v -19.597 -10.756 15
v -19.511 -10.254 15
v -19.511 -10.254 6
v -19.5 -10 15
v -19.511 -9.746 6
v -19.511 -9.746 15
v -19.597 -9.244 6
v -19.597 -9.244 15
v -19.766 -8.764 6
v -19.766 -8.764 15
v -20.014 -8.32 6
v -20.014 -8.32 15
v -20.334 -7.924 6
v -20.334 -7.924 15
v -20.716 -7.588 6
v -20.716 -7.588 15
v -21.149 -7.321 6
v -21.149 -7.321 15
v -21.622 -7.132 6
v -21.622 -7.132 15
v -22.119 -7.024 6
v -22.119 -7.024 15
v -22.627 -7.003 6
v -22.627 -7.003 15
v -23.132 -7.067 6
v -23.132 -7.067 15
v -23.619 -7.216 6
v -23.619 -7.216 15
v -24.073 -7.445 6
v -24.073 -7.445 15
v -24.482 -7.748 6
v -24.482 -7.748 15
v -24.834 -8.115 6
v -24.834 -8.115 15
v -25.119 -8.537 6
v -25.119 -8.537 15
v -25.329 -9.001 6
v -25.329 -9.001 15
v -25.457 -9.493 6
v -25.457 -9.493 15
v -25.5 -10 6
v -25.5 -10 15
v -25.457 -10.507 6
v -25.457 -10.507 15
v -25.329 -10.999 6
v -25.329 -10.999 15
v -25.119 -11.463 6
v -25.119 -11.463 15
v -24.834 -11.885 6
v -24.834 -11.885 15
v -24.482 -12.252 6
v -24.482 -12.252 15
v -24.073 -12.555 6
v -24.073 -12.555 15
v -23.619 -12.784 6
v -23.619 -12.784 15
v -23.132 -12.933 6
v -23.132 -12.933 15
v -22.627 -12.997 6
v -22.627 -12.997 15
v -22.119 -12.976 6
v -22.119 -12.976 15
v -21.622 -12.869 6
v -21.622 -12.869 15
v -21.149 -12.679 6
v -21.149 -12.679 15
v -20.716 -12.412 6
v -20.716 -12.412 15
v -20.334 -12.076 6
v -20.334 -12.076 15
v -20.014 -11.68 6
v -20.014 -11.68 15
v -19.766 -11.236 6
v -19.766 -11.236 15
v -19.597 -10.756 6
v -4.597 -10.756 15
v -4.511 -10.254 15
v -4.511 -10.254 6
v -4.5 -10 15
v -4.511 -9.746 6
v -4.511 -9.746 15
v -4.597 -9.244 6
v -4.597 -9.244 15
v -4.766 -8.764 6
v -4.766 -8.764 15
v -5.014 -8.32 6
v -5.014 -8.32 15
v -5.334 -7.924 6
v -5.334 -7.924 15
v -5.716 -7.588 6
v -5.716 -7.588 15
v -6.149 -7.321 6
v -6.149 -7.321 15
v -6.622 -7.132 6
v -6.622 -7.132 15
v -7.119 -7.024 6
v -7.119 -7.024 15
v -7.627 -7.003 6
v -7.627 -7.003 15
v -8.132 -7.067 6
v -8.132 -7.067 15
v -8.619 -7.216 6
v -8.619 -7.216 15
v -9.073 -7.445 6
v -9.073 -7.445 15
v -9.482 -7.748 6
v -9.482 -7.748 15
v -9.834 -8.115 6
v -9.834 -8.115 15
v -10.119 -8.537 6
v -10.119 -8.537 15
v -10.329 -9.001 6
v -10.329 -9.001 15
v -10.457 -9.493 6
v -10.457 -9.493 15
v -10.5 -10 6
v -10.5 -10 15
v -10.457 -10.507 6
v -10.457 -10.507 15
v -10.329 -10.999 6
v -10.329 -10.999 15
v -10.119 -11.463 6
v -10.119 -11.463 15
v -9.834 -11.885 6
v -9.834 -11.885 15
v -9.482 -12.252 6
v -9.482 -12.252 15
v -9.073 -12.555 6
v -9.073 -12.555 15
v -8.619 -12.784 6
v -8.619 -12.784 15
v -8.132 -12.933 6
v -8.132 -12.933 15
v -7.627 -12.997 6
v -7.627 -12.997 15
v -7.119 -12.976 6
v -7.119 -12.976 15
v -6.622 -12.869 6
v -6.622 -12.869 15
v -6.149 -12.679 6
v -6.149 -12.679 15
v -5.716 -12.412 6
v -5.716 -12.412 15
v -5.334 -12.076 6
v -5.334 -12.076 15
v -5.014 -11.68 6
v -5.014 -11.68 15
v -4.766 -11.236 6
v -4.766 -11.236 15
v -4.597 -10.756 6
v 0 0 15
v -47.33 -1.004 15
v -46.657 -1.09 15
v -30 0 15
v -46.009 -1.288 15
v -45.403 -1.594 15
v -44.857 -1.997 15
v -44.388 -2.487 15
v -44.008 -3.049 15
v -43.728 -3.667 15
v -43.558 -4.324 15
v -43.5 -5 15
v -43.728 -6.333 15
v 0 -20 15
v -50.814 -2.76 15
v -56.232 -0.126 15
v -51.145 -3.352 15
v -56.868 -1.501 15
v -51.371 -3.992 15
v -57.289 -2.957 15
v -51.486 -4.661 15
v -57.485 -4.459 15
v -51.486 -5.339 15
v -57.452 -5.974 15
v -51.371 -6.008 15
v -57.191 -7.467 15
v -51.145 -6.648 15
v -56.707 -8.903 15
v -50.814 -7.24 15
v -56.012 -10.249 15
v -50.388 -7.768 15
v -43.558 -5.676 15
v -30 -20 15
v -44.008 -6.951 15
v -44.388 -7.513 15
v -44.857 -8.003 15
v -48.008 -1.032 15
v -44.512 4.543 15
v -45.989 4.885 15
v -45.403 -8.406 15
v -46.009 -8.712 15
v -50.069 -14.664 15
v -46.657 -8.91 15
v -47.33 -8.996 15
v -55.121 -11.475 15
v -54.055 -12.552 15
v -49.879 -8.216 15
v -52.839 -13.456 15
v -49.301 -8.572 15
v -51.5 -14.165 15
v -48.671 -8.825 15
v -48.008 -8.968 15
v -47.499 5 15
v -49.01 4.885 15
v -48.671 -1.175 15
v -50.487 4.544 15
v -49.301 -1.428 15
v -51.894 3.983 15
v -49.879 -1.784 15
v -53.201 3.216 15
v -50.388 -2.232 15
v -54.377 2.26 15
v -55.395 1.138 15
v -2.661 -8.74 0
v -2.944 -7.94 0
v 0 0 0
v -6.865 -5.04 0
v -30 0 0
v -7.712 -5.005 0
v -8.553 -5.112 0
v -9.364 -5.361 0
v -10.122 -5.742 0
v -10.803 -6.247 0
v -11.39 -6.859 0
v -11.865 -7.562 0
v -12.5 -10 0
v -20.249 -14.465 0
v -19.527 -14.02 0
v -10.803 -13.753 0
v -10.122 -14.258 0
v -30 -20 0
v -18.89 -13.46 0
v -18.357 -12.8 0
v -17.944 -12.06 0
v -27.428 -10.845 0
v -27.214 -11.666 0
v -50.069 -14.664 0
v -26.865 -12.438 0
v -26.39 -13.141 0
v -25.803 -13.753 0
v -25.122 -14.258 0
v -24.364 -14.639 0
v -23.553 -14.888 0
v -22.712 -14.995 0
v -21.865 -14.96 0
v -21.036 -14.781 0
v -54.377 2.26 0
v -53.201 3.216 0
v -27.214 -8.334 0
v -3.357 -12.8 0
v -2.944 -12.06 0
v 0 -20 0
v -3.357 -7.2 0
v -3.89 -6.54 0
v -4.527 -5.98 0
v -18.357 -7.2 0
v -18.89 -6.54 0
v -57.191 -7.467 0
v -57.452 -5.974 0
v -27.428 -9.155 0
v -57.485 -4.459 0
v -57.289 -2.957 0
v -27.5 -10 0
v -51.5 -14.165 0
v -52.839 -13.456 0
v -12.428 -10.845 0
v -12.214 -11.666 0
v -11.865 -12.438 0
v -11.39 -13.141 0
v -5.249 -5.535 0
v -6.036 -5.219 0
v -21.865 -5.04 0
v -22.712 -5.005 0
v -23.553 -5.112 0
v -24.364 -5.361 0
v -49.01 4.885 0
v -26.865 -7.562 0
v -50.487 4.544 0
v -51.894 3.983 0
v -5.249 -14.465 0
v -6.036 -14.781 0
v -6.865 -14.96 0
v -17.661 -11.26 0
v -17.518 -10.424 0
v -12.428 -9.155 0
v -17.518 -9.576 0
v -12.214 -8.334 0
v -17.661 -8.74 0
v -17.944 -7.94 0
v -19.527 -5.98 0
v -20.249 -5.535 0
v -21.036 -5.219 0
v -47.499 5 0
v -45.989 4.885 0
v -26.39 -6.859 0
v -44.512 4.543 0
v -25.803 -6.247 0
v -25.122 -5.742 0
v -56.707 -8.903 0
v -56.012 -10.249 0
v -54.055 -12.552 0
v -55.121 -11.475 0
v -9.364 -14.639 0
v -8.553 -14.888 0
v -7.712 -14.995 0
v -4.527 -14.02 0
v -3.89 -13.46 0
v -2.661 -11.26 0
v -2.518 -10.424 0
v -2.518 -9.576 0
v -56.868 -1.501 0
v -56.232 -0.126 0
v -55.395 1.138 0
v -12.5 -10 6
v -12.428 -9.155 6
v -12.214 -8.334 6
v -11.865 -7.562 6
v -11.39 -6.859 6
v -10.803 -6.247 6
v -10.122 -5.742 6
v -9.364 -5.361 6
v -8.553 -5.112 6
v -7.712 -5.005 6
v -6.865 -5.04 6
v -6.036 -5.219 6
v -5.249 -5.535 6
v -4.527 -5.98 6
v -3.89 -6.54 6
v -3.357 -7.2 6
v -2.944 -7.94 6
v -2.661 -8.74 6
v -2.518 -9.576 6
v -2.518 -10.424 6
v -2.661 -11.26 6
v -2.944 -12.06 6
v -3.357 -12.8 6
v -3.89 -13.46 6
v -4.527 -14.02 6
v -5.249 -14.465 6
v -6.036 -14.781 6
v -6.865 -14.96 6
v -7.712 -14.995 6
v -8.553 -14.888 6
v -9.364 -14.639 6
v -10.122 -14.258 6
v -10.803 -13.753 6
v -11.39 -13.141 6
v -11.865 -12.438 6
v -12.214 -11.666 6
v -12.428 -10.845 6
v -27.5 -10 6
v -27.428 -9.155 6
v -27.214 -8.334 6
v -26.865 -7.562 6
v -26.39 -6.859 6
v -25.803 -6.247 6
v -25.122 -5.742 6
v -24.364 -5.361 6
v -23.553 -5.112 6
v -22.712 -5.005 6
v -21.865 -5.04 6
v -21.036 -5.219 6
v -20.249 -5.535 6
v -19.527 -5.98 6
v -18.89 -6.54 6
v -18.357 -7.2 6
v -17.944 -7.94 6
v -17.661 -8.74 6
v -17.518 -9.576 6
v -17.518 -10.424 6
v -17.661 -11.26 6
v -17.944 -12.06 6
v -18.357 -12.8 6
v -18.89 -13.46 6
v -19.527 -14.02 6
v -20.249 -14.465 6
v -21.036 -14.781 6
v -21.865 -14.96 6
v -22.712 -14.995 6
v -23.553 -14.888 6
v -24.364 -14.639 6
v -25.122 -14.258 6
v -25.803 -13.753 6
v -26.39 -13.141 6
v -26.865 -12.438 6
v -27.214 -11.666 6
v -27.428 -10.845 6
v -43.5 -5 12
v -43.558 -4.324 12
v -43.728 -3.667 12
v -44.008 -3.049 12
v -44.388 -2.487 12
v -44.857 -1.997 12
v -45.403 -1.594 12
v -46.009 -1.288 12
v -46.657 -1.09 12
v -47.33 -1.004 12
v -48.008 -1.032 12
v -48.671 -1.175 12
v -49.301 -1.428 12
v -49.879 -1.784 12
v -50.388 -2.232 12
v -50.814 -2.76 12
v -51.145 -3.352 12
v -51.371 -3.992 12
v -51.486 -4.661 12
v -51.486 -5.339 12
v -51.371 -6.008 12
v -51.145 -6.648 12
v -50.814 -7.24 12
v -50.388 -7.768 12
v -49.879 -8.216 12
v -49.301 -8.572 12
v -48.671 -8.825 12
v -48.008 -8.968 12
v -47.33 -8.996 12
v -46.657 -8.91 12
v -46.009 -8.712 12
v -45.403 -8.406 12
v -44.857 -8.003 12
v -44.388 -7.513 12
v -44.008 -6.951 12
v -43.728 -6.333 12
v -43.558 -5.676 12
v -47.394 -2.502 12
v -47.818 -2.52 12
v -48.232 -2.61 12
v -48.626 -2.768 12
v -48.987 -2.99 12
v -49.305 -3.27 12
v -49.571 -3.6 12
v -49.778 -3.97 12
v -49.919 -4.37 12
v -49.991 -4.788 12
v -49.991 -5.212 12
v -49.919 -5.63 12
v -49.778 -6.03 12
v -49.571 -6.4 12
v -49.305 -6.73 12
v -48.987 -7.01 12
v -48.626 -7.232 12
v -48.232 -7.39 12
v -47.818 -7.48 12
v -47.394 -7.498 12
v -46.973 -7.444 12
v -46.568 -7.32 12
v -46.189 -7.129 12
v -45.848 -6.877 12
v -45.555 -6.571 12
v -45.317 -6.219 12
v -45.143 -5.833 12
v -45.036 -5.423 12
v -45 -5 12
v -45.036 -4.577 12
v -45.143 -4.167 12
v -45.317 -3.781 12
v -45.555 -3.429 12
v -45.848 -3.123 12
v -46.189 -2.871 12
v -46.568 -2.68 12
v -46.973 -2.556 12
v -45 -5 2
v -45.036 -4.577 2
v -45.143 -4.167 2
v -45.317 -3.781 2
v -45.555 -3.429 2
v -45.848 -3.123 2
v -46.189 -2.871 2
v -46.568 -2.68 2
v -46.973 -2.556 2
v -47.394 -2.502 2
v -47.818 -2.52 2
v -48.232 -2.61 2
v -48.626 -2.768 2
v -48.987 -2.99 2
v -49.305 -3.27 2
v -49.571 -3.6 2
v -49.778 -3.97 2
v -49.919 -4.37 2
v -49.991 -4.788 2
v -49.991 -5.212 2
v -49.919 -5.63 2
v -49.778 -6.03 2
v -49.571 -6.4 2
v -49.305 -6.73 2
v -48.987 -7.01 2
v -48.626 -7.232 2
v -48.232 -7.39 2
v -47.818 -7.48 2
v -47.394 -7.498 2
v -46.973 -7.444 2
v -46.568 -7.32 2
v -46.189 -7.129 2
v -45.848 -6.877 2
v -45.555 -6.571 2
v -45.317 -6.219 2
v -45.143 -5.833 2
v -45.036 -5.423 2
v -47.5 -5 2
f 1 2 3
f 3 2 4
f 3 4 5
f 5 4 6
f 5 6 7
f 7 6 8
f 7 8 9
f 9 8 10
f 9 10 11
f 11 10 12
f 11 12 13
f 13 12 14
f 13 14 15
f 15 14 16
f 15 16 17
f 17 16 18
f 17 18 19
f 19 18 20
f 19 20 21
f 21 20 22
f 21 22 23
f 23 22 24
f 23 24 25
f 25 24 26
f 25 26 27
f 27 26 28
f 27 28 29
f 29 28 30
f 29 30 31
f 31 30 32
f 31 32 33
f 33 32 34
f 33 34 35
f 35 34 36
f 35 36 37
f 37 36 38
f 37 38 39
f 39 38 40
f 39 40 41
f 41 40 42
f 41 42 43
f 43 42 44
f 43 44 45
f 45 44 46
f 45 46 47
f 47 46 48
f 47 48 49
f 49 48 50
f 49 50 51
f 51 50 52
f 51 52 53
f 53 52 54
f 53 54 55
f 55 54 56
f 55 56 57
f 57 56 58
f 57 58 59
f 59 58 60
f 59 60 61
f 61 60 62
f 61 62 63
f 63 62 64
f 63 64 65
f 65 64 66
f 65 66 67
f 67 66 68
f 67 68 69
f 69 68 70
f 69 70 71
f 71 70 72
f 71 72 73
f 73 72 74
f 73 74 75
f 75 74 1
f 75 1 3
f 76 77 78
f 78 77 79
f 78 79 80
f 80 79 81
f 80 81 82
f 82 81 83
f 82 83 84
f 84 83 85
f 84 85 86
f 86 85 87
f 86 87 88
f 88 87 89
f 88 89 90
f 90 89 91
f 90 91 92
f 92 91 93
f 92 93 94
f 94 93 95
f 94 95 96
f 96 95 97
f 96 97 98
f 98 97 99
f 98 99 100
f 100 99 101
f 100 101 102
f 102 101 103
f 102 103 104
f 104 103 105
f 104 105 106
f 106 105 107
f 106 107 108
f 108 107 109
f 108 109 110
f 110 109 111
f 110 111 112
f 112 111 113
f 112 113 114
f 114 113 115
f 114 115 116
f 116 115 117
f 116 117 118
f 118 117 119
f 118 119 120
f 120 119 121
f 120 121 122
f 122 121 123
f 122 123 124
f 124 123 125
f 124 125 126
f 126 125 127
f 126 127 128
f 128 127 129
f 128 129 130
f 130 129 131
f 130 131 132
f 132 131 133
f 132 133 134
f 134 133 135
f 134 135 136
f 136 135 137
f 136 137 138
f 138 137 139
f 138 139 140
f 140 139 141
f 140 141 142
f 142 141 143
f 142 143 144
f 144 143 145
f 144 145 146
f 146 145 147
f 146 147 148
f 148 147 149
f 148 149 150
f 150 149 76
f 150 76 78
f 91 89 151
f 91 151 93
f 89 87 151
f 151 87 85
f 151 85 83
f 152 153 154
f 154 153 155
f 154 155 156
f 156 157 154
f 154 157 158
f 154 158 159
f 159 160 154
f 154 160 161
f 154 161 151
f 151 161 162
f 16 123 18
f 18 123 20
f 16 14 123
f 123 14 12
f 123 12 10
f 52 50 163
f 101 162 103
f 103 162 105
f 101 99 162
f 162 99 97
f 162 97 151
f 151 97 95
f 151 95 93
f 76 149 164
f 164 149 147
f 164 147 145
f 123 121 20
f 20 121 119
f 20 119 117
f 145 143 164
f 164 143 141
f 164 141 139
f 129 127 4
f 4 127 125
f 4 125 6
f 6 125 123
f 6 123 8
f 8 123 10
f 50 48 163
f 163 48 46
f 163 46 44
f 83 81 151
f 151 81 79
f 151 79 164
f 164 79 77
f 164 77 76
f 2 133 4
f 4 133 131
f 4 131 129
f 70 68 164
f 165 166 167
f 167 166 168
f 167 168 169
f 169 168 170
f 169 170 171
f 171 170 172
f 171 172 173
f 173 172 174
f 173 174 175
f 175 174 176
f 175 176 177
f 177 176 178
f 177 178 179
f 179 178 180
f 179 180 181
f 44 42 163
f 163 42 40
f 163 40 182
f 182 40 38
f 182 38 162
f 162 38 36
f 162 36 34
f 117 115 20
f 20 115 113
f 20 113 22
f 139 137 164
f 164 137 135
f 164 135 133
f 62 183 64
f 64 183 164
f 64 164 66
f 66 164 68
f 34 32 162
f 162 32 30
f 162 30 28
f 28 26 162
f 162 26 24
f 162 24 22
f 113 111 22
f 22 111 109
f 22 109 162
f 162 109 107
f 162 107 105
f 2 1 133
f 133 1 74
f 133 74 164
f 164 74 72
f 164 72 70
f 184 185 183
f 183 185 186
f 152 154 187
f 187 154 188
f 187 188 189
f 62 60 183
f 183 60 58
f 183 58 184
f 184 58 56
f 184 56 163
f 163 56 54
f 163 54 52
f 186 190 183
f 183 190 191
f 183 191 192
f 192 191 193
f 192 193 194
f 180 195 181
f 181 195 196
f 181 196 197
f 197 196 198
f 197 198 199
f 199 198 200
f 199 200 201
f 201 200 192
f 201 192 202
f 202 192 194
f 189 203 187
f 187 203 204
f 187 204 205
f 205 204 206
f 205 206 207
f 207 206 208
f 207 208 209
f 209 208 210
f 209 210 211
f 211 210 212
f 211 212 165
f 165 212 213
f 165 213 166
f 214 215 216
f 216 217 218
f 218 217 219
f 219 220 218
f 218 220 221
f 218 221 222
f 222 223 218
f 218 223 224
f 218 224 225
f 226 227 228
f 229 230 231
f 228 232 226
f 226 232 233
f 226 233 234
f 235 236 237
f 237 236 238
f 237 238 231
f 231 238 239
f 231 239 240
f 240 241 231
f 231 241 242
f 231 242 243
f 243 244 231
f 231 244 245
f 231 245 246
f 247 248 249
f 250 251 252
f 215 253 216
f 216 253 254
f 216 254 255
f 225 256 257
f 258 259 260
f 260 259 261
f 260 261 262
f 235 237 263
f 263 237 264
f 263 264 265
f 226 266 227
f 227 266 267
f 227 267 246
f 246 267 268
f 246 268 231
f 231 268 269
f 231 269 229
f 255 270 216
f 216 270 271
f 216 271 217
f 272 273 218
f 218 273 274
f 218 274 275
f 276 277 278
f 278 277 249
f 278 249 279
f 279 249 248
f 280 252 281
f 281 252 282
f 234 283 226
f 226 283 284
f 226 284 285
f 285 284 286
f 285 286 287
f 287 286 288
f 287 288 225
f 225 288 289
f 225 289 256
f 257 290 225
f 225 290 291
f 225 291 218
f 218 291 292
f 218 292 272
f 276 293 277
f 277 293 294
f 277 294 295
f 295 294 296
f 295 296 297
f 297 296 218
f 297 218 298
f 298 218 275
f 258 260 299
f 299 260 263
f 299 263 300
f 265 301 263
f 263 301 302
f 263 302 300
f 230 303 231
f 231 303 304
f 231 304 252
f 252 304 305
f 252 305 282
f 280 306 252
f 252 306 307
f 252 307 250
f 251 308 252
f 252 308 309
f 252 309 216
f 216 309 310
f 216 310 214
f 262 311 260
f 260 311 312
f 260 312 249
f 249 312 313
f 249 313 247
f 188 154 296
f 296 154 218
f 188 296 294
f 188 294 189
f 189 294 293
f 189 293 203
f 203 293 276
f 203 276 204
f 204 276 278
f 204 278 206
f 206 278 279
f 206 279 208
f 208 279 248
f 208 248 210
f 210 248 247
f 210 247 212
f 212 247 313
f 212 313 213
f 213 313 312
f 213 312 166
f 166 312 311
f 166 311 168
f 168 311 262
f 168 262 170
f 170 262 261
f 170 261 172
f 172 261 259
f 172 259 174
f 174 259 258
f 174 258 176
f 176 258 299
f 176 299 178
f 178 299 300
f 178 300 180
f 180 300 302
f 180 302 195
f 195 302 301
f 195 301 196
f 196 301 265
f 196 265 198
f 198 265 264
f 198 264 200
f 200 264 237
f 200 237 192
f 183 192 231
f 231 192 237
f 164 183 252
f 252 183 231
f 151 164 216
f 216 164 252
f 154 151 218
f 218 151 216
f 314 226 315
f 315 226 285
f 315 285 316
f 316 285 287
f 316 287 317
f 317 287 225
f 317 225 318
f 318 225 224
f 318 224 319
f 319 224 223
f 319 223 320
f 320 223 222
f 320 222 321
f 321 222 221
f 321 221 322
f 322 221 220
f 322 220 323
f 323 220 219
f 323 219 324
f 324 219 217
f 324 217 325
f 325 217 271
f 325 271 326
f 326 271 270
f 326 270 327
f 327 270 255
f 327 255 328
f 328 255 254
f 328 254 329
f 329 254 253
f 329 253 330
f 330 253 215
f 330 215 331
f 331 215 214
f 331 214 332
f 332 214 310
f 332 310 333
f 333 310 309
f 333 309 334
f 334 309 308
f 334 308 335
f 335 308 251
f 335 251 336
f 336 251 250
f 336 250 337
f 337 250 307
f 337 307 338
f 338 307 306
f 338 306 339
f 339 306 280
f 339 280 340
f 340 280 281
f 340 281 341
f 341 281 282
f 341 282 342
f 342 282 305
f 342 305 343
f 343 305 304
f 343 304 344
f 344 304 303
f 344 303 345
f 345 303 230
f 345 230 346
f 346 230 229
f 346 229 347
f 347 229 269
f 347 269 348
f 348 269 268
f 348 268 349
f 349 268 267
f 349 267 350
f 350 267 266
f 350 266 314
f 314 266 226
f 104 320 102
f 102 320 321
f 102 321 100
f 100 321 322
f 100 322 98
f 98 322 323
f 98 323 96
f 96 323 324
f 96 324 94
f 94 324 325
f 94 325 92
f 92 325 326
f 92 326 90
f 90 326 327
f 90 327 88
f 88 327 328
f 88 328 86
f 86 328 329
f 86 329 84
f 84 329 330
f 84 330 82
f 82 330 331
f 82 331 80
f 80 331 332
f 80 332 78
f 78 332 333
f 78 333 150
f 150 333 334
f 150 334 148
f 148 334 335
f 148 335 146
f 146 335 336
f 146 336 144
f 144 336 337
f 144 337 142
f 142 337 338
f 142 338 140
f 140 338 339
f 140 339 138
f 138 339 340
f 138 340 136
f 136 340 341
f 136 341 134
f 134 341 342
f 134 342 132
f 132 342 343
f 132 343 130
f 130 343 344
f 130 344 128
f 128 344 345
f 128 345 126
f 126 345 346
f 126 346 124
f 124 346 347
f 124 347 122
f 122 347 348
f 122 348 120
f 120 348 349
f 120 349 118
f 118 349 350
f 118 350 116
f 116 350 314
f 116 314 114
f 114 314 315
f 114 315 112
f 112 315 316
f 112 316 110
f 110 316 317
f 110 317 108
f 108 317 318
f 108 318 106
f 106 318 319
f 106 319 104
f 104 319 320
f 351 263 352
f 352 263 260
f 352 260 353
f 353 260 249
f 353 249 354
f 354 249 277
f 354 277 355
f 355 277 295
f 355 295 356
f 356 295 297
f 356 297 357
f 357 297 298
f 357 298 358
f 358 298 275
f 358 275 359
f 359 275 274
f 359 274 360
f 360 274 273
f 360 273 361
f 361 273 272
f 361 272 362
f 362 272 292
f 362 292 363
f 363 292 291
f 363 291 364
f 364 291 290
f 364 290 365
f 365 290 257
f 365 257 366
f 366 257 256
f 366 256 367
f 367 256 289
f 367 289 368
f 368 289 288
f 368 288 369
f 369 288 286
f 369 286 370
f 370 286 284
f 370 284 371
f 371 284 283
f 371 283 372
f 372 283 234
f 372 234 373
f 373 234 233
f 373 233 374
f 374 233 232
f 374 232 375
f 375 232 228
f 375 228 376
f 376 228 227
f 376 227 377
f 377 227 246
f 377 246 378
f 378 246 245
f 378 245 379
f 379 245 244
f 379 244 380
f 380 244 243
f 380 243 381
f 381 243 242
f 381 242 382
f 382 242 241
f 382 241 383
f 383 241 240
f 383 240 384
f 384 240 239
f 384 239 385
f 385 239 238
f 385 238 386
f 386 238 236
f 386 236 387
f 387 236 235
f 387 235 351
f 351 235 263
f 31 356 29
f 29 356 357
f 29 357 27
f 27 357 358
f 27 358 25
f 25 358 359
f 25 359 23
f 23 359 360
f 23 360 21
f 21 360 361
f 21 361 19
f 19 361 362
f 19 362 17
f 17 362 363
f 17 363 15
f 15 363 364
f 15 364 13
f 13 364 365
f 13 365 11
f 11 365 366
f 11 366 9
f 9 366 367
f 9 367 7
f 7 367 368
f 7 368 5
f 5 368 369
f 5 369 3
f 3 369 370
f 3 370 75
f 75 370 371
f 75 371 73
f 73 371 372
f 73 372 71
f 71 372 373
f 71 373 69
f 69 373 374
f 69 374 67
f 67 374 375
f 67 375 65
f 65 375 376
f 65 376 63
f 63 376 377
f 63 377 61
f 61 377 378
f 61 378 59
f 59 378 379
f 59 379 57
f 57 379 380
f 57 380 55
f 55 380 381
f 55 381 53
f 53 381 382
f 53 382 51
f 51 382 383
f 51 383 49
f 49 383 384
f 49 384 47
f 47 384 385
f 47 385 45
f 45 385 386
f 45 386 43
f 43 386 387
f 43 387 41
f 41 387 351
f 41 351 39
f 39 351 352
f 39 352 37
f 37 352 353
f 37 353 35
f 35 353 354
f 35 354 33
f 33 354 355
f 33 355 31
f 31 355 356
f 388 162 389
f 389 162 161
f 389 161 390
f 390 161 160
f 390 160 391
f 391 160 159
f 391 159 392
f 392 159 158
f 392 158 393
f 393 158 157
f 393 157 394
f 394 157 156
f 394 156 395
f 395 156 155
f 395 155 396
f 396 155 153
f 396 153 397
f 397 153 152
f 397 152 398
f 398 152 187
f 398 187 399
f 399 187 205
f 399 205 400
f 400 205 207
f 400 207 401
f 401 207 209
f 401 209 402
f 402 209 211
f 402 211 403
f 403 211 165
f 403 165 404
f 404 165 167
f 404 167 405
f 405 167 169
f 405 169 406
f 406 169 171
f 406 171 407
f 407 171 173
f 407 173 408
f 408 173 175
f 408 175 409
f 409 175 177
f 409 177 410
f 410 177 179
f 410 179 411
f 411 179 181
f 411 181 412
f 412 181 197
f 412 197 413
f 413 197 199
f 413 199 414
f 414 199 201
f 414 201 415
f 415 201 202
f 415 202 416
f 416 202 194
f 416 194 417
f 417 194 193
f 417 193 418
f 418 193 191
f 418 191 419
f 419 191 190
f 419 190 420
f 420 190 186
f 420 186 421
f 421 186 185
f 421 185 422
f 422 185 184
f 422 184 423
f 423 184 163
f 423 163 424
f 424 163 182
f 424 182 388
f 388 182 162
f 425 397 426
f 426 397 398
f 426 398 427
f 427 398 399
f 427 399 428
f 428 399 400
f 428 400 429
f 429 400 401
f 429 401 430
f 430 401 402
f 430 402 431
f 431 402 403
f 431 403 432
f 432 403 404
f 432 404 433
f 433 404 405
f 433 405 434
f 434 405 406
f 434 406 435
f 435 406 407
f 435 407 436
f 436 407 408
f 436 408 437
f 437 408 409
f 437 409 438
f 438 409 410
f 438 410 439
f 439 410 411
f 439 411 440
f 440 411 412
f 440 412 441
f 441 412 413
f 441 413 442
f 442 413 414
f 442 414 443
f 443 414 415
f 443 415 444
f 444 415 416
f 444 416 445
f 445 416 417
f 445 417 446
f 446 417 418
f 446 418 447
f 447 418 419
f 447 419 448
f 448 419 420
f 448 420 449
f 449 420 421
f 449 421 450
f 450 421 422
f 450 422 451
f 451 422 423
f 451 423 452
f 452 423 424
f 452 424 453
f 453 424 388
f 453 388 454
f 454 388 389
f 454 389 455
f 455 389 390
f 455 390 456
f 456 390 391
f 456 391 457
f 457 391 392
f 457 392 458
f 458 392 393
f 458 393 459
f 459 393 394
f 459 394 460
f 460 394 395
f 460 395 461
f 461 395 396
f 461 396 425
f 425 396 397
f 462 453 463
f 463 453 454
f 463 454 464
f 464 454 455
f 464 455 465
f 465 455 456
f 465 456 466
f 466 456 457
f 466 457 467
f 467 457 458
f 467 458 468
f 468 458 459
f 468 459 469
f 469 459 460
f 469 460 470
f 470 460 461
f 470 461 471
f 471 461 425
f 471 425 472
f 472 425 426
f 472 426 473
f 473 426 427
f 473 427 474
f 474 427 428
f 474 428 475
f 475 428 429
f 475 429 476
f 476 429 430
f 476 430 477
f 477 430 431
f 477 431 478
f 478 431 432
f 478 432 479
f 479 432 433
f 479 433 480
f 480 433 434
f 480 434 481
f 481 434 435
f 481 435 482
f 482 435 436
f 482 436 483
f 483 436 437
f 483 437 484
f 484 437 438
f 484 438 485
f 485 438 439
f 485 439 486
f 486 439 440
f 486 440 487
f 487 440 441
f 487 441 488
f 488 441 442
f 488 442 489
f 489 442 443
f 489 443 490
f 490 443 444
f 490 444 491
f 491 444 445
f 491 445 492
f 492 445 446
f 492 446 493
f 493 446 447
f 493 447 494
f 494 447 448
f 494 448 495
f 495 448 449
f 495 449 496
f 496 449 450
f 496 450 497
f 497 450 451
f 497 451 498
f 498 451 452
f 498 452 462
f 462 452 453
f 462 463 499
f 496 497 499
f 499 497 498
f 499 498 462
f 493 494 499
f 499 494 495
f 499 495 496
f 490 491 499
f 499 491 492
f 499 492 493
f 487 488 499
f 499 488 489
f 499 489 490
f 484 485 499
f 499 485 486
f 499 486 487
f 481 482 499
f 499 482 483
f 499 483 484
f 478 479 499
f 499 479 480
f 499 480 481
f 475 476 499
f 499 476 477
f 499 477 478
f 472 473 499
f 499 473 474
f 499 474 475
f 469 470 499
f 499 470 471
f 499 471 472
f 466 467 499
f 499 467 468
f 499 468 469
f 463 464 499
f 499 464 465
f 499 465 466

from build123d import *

# Parameters (mm, degrees)
SKETCH_1_R          = 3
EXTRUDE_1_DEPTH     = 15
SKETCH_4_R          = 5
CUT_EXTRUDE_3_DEPTH = 6
SKETCH_8_R          = 4
CUT_EXTRUDE_4_DEPTH = 3
SKETCH_10_R         = 2.5
CUT_EXTRUDE_5_DEPTH = 10


with BuildPart() as part:
    # 草图1 → 凸台-拉伸1 (new body)
    with BuildSketch(Plane.XY):
        with BuildLine():
            Line((-30, 0), (0, 0))
            Line((0, 0), (0, -20))
            Line((0, -20), (-30, -20))
            Line((-30, -20), (-50.06938155, -14.664278475))
            ThreePointArc((-50.06938155, -14.664278475), (-57.106051537, -2.220832162), (-44.512363219, 4.543271266))
            Line((-44.512363219, 4.543271266), (-30, 0))
        make_face()
        with Locations((-22.5, -10)):
            Circle(SKETCH_1_R, mode=Mode.SUBTRACT)
        with Locations((-7.5, -10)):
            Circle(SKETCH_1_R, mode=Mode.SUBTRACT)
    extrude(amount=EXTRUDE_1_DEPTH)

    # 草图4 → 切除-拉伸3 (cut)
    with BuildSketch(Plane(origin=(0, 0, 0), x_dir=(-1, 0, 0), z_dir=(0, 0, -1))):
        with Locations((7.5, -10)):
            Circle(SKETCH_4_R)
        with Locations((22.5, -10)):
            Circle(SKETCH_4_R)
    extrude(amount=-CUT_EXTRUDE_3_DEPTH, mode=Mode.SUBTRACT)

    # 草图8 → 切除-拉伸4 (cut)
    with BuildSketch(Plane.XY.offset(15)):
        with Locations((-47.5, -5)):
            Circle(SKETCH_8_R)
    extrude(amount=-CUT_EXTRUDE_4_DEPTH, mode=Mode.SUBTRACT)

    # 草图10 → 切除-拉伸5 (cut)
    with BuildSketch(Plane.XY.offset(12)):
        with Locations((-47.5, -5)):
            Circle(SKETCH_10_R)
    extrude(amount=-CUT_EXTRUDE_5_DEPTH, mode=Mode.SUBTRACT)


solid = part.part
